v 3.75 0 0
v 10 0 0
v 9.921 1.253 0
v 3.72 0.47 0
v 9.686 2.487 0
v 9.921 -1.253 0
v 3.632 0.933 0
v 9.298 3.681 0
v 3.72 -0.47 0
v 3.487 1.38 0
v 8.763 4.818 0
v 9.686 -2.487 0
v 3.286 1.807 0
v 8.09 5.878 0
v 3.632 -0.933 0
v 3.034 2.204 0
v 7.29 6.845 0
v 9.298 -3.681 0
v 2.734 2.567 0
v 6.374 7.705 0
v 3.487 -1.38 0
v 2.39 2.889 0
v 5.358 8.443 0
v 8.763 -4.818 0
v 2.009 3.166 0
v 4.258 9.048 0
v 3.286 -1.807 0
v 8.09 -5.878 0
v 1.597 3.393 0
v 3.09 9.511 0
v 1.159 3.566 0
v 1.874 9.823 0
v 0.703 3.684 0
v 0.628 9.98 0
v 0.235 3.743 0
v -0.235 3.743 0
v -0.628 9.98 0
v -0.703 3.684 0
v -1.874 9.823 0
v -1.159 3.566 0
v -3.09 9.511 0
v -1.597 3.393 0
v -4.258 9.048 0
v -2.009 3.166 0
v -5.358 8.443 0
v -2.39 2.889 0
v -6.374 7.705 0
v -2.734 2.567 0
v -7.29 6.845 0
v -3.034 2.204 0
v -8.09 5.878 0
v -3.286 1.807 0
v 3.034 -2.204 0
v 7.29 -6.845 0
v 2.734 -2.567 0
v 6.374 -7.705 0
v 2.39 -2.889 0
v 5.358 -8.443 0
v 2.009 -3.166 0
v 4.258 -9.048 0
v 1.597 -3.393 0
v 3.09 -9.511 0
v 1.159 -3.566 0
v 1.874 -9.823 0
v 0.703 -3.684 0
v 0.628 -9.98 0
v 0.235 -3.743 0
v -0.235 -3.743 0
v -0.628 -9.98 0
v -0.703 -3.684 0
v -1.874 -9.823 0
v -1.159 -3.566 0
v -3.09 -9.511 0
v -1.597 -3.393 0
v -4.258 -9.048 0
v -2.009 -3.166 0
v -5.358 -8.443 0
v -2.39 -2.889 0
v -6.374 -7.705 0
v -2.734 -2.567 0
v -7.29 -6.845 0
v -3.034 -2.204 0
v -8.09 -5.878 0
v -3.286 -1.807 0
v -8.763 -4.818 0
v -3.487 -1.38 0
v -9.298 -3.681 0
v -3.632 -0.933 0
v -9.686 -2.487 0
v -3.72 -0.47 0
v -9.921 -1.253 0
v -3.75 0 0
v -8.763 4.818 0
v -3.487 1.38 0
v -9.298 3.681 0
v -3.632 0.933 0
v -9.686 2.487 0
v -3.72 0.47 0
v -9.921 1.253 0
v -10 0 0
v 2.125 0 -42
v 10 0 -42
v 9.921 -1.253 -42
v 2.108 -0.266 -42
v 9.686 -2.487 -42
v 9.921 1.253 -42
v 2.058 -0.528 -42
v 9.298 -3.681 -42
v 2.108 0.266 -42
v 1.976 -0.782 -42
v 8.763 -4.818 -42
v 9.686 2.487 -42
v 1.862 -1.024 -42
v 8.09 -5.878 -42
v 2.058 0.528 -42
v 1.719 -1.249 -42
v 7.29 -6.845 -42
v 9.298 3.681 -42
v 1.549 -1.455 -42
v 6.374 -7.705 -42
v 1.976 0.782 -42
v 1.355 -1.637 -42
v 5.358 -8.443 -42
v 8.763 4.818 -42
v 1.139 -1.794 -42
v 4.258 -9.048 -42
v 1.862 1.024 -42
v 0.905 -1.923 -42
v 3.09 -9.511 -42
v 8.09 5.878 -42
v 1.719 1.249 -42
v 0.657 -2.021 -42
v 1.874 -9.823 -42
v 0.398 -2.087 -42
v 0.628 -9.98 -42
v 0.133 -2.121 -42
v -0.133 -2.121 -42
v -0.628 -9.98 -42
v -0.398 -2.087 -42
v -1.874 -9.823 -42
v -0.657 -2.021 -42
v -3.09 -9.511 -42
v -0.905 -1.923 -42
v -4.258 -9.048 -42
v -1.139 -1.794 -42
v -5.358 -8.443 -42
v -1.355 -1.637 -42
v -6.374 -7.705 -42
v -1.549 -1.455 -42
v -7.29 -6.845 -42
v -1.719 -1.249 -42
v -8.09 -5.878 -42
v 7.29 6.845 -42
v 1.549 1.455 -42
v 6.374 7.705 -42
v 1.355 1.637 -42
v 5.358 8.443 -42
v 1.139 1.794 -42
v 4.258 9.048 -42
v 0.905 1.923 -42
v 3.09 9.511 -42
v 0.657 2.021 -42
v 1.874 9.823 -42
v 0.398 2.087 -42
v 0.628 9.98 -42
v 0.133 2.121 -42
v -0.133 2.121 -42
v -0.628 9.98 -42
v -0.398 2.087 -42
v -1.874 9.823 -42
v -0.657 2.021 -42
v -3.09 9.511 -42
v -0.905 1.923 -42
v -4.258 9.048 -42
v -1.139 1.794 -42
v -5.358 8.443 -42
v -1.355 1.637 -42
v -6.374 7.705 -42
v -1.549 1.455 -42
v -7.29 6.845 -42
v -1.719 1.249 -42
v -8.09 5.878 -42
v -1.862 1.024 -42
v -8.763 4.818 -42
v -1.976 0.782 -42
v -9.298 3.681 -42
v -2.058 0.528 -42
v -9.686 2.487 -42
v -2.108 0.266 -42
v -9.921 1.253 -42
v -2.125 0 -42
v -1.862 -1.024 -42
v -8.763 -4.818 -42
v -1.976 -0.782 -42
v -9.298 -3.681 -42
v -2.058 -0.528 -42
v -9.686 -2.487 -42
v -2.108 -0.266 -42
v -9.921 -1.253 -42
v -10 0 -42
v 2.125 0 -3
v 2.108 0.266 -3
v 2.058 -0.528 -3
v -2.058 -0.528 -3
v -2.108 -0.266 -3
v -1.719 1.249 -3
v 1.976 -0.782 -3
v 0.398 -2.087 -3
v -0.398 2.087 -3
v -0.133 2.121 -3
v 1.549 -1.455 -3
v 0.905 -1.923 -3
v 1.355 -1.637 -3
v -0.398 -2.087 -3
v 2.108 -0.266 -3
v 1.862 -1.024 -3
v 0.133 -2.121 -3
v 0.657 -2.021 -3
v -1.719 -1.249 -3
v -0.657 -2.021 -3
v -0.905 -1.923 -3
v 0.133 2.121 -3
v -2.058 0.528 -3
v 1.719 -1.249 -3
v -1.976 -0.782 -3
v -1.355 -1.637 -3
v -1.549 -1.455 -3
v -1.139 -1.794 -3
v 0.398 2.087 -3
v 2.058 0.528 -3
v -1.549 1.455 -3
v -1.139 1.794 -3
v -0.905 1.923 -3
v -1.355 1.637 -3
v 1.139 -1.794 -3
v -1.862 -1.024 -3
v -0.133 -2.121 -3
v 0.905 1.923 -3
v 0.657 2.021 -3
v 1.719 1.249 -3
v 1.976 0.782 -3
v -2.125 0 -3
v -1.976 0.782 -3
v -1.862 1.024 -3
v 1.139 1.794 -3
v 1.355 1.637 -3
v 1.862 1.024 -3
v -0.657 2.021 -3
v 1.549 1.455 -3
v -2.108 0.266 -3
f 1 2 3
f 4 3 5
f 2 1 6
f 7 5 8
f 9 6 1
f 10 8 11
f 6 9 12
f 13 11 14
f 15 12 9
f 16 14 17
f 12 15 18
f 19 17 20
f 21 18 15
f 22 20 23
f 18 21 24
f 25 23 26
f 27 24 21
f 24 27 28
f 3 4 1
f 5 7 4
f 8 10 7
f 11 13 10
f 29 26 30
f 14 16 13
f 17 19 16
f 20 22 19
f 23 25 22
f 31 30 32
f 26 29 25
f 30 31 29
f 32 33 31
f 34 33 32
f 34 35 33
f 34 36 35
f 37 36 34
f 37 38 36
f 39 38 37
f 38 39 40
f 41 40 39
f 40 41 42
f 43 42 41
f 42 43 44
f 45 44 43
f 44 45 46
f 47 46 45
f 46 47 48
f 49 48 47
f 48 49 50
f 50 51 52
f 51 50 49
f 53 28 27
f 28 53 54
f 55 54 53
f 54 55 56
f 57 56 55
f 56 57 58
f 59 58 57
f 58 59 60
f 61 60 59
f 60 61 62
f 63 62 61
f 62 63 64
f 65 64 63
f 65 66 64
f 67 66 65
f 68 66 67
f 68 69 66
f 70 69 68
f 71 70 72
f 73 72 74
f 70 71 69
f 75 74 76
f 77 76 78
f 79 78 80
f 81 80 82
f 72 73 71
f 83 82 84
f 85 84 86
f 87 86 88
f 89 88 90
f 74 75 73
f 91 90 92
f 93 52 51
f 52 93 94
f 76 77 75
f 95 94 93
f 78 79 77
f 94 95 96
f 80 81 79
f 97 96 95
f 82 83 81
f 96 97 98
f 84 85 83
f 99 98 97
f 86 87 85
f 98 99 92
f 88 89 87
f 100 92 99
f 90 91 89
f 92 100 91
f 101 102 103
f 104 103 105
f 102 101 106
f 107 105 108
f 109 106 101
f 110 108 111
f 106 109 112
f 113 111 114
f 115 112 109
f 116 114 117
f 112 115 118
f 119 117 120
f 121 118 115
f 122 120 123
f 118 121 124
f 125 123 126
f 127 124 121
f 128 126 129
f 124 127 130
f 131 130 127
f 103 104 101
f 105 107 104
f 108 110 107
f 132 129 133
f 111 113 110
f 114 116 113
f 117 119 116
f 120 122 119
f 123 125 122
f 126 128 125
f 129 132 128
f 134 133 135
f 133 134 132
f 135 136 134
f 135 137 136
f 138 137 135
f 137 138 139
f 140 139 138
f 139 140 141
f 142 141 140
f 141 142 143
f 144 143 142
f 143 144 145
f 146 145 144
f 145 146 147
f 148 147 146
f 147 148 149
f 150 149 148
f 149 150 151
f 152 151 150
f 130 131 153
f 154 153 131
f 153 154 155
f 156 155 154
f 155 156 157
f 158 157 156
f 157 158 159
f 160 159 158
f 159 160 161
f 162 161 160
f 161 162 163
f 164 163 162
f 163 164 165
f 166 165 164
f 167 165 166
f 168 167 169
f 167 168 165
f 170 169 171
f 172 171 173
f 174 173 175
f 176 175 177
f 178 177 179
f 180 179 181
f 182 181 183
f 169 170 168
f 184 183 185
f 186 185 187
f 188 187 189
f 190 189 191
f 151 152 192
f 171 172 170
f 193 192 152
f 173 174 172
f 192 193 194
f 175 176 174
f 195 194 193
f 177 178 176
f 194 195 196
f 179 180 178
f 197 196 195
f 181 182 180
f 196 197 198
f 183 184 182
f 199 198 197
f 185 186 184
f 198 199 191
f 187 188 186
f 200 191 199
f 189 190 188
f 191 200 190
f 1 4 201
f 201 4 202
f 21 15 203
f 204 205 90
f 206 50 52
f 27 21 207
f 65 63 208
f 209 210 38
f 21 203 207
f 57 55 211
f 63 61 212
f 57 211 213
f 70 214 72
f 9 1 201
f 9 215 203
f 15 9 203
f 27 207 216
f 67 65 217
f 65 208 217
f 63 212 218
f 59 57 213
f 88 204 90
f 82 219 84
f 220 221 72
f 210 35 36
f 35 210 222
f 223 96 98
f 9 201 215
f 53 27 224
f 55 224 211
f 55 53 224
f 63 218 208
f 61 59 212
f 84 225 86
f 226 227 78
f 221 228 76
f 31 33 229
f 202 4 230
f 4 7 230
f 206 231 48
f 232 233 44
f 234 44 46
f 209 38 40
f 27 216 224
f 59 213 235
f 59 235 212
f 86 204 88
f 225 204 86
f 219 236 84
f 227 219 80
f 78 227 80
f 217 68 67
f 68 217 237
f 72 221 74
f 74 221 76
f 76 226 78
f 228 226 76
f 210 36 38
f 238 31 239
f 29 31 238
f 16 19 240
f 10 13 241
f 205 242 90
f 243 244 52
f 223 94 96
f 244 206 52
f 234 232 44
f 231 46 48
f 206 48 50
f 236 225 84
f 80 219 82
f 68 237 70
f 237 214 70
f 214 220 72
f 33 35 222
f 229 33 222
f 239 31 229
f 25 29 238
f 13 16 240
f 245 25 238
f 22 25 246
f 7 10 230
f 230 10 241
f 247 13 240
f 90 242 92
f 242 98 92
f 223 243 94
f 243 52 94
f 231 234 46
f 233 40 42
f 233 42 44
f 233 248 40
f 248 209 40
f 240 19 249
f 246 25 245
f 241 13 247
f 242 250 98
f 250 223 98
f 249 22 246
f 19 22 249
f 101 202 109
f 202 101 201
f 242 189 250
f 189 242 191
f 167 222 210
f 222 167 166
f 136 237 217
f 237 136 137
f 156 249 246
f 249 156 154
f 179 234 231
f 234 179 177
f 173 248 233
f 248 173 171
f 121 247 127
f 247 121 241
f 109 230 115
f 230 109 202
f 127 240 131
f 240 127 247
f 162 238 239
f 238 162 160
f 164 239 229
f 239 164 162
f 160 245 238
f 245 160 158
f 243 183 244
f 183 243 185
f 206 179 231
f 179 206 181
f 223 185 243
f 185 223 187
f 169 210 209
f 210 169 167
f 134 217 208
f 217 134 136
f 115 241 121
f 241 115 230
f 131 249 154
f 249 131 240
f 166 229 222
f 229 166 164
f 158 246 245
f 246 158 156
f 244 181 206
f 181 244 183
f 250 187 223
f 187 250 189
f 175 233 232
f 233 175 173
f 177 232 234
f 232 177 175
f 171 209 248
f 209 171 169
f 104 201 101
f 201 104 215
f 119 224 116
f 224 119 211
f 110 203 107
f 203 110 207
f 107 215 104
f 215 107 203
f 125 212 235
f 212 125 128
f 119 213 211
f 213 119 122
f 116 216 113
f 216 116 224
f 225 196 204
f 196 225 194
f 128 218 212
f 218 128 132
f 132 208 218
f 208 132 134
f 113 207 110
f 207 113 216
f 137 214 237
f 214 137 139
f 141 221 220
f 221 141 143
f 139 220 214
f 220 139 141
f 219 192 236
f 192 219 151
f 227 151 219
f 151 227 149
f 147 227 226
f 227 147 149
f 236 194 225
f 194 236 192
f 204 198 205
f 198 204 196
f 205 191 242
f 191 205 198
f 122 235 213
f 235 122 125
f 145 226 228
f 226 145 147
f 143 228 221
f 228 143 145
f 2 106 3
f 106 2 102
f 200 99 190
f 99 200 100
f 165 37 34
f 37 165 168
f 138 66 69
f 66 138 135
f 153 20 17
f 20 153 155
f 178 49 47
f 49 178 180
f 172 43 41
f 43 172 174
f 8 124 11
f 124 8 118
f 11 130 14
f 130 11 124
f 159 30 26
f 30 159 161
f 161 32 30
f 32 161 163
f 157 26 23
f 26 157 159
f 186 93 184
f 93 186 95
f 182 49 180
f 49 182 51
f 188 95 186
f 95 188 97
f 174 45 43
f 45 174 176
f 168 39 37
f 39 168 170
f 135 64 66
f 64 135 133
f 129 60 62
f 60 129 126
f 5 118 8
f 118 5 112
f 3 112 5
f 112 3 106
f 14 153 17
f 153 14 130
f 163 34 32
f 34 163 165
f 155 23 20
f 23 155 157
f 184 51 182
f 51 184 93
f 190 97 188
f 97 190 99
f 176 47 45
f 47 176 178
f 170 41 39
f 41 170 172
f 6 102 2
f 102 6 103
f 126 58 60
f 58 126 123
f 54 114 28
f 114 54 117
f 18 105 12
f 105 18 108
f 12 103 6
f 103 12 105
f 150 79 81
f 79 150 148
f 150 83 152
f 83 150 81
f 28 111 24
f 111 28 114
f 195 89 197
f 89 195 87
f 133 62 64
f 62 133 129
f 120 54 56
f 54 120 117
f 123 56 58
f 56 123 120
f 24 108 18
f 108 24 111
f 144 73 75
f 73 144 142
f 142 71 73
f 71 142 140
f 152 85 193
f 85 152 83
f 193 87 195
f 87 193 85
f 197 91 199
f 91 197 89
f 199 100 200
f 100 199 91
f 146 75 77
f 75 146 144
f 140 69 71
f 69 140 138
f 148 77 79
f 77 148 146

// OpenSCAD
$fn = 50;


difference() {
	union() {
		translate(v = [0, 0, -42.0000000000]) {
			cylinder(h = 42, r = 10.0000000000);
		}
		cylinder(h = 0, r = 13.0000000000);
	}
	union() {
		translate(v = [0, 0, 0]) {
			rotate(a = [0, 0, 0]) {
				difference() {
					union() {
						#translate(v = [0, 0, -42.0000000000]) {
							cylinder(h = 42, r = 2.0000000000);
						}
						#translate(v = [0, 0, -3]) {
							cylinder(h = 3, r1 = 2.1250000000, r2 = 3.7500000000);
						}
						#translate(v = [0, 0, -42.0000000000]) {
							cylinder(h = 42, r = 2.1250000000);
						}
						#translate(v = [0, 0, -42.0000000000]) {
							cylinder(h = 42, r = 2.0000000000);
						}
					}
					union();
				}
			}
		}
	}
}
